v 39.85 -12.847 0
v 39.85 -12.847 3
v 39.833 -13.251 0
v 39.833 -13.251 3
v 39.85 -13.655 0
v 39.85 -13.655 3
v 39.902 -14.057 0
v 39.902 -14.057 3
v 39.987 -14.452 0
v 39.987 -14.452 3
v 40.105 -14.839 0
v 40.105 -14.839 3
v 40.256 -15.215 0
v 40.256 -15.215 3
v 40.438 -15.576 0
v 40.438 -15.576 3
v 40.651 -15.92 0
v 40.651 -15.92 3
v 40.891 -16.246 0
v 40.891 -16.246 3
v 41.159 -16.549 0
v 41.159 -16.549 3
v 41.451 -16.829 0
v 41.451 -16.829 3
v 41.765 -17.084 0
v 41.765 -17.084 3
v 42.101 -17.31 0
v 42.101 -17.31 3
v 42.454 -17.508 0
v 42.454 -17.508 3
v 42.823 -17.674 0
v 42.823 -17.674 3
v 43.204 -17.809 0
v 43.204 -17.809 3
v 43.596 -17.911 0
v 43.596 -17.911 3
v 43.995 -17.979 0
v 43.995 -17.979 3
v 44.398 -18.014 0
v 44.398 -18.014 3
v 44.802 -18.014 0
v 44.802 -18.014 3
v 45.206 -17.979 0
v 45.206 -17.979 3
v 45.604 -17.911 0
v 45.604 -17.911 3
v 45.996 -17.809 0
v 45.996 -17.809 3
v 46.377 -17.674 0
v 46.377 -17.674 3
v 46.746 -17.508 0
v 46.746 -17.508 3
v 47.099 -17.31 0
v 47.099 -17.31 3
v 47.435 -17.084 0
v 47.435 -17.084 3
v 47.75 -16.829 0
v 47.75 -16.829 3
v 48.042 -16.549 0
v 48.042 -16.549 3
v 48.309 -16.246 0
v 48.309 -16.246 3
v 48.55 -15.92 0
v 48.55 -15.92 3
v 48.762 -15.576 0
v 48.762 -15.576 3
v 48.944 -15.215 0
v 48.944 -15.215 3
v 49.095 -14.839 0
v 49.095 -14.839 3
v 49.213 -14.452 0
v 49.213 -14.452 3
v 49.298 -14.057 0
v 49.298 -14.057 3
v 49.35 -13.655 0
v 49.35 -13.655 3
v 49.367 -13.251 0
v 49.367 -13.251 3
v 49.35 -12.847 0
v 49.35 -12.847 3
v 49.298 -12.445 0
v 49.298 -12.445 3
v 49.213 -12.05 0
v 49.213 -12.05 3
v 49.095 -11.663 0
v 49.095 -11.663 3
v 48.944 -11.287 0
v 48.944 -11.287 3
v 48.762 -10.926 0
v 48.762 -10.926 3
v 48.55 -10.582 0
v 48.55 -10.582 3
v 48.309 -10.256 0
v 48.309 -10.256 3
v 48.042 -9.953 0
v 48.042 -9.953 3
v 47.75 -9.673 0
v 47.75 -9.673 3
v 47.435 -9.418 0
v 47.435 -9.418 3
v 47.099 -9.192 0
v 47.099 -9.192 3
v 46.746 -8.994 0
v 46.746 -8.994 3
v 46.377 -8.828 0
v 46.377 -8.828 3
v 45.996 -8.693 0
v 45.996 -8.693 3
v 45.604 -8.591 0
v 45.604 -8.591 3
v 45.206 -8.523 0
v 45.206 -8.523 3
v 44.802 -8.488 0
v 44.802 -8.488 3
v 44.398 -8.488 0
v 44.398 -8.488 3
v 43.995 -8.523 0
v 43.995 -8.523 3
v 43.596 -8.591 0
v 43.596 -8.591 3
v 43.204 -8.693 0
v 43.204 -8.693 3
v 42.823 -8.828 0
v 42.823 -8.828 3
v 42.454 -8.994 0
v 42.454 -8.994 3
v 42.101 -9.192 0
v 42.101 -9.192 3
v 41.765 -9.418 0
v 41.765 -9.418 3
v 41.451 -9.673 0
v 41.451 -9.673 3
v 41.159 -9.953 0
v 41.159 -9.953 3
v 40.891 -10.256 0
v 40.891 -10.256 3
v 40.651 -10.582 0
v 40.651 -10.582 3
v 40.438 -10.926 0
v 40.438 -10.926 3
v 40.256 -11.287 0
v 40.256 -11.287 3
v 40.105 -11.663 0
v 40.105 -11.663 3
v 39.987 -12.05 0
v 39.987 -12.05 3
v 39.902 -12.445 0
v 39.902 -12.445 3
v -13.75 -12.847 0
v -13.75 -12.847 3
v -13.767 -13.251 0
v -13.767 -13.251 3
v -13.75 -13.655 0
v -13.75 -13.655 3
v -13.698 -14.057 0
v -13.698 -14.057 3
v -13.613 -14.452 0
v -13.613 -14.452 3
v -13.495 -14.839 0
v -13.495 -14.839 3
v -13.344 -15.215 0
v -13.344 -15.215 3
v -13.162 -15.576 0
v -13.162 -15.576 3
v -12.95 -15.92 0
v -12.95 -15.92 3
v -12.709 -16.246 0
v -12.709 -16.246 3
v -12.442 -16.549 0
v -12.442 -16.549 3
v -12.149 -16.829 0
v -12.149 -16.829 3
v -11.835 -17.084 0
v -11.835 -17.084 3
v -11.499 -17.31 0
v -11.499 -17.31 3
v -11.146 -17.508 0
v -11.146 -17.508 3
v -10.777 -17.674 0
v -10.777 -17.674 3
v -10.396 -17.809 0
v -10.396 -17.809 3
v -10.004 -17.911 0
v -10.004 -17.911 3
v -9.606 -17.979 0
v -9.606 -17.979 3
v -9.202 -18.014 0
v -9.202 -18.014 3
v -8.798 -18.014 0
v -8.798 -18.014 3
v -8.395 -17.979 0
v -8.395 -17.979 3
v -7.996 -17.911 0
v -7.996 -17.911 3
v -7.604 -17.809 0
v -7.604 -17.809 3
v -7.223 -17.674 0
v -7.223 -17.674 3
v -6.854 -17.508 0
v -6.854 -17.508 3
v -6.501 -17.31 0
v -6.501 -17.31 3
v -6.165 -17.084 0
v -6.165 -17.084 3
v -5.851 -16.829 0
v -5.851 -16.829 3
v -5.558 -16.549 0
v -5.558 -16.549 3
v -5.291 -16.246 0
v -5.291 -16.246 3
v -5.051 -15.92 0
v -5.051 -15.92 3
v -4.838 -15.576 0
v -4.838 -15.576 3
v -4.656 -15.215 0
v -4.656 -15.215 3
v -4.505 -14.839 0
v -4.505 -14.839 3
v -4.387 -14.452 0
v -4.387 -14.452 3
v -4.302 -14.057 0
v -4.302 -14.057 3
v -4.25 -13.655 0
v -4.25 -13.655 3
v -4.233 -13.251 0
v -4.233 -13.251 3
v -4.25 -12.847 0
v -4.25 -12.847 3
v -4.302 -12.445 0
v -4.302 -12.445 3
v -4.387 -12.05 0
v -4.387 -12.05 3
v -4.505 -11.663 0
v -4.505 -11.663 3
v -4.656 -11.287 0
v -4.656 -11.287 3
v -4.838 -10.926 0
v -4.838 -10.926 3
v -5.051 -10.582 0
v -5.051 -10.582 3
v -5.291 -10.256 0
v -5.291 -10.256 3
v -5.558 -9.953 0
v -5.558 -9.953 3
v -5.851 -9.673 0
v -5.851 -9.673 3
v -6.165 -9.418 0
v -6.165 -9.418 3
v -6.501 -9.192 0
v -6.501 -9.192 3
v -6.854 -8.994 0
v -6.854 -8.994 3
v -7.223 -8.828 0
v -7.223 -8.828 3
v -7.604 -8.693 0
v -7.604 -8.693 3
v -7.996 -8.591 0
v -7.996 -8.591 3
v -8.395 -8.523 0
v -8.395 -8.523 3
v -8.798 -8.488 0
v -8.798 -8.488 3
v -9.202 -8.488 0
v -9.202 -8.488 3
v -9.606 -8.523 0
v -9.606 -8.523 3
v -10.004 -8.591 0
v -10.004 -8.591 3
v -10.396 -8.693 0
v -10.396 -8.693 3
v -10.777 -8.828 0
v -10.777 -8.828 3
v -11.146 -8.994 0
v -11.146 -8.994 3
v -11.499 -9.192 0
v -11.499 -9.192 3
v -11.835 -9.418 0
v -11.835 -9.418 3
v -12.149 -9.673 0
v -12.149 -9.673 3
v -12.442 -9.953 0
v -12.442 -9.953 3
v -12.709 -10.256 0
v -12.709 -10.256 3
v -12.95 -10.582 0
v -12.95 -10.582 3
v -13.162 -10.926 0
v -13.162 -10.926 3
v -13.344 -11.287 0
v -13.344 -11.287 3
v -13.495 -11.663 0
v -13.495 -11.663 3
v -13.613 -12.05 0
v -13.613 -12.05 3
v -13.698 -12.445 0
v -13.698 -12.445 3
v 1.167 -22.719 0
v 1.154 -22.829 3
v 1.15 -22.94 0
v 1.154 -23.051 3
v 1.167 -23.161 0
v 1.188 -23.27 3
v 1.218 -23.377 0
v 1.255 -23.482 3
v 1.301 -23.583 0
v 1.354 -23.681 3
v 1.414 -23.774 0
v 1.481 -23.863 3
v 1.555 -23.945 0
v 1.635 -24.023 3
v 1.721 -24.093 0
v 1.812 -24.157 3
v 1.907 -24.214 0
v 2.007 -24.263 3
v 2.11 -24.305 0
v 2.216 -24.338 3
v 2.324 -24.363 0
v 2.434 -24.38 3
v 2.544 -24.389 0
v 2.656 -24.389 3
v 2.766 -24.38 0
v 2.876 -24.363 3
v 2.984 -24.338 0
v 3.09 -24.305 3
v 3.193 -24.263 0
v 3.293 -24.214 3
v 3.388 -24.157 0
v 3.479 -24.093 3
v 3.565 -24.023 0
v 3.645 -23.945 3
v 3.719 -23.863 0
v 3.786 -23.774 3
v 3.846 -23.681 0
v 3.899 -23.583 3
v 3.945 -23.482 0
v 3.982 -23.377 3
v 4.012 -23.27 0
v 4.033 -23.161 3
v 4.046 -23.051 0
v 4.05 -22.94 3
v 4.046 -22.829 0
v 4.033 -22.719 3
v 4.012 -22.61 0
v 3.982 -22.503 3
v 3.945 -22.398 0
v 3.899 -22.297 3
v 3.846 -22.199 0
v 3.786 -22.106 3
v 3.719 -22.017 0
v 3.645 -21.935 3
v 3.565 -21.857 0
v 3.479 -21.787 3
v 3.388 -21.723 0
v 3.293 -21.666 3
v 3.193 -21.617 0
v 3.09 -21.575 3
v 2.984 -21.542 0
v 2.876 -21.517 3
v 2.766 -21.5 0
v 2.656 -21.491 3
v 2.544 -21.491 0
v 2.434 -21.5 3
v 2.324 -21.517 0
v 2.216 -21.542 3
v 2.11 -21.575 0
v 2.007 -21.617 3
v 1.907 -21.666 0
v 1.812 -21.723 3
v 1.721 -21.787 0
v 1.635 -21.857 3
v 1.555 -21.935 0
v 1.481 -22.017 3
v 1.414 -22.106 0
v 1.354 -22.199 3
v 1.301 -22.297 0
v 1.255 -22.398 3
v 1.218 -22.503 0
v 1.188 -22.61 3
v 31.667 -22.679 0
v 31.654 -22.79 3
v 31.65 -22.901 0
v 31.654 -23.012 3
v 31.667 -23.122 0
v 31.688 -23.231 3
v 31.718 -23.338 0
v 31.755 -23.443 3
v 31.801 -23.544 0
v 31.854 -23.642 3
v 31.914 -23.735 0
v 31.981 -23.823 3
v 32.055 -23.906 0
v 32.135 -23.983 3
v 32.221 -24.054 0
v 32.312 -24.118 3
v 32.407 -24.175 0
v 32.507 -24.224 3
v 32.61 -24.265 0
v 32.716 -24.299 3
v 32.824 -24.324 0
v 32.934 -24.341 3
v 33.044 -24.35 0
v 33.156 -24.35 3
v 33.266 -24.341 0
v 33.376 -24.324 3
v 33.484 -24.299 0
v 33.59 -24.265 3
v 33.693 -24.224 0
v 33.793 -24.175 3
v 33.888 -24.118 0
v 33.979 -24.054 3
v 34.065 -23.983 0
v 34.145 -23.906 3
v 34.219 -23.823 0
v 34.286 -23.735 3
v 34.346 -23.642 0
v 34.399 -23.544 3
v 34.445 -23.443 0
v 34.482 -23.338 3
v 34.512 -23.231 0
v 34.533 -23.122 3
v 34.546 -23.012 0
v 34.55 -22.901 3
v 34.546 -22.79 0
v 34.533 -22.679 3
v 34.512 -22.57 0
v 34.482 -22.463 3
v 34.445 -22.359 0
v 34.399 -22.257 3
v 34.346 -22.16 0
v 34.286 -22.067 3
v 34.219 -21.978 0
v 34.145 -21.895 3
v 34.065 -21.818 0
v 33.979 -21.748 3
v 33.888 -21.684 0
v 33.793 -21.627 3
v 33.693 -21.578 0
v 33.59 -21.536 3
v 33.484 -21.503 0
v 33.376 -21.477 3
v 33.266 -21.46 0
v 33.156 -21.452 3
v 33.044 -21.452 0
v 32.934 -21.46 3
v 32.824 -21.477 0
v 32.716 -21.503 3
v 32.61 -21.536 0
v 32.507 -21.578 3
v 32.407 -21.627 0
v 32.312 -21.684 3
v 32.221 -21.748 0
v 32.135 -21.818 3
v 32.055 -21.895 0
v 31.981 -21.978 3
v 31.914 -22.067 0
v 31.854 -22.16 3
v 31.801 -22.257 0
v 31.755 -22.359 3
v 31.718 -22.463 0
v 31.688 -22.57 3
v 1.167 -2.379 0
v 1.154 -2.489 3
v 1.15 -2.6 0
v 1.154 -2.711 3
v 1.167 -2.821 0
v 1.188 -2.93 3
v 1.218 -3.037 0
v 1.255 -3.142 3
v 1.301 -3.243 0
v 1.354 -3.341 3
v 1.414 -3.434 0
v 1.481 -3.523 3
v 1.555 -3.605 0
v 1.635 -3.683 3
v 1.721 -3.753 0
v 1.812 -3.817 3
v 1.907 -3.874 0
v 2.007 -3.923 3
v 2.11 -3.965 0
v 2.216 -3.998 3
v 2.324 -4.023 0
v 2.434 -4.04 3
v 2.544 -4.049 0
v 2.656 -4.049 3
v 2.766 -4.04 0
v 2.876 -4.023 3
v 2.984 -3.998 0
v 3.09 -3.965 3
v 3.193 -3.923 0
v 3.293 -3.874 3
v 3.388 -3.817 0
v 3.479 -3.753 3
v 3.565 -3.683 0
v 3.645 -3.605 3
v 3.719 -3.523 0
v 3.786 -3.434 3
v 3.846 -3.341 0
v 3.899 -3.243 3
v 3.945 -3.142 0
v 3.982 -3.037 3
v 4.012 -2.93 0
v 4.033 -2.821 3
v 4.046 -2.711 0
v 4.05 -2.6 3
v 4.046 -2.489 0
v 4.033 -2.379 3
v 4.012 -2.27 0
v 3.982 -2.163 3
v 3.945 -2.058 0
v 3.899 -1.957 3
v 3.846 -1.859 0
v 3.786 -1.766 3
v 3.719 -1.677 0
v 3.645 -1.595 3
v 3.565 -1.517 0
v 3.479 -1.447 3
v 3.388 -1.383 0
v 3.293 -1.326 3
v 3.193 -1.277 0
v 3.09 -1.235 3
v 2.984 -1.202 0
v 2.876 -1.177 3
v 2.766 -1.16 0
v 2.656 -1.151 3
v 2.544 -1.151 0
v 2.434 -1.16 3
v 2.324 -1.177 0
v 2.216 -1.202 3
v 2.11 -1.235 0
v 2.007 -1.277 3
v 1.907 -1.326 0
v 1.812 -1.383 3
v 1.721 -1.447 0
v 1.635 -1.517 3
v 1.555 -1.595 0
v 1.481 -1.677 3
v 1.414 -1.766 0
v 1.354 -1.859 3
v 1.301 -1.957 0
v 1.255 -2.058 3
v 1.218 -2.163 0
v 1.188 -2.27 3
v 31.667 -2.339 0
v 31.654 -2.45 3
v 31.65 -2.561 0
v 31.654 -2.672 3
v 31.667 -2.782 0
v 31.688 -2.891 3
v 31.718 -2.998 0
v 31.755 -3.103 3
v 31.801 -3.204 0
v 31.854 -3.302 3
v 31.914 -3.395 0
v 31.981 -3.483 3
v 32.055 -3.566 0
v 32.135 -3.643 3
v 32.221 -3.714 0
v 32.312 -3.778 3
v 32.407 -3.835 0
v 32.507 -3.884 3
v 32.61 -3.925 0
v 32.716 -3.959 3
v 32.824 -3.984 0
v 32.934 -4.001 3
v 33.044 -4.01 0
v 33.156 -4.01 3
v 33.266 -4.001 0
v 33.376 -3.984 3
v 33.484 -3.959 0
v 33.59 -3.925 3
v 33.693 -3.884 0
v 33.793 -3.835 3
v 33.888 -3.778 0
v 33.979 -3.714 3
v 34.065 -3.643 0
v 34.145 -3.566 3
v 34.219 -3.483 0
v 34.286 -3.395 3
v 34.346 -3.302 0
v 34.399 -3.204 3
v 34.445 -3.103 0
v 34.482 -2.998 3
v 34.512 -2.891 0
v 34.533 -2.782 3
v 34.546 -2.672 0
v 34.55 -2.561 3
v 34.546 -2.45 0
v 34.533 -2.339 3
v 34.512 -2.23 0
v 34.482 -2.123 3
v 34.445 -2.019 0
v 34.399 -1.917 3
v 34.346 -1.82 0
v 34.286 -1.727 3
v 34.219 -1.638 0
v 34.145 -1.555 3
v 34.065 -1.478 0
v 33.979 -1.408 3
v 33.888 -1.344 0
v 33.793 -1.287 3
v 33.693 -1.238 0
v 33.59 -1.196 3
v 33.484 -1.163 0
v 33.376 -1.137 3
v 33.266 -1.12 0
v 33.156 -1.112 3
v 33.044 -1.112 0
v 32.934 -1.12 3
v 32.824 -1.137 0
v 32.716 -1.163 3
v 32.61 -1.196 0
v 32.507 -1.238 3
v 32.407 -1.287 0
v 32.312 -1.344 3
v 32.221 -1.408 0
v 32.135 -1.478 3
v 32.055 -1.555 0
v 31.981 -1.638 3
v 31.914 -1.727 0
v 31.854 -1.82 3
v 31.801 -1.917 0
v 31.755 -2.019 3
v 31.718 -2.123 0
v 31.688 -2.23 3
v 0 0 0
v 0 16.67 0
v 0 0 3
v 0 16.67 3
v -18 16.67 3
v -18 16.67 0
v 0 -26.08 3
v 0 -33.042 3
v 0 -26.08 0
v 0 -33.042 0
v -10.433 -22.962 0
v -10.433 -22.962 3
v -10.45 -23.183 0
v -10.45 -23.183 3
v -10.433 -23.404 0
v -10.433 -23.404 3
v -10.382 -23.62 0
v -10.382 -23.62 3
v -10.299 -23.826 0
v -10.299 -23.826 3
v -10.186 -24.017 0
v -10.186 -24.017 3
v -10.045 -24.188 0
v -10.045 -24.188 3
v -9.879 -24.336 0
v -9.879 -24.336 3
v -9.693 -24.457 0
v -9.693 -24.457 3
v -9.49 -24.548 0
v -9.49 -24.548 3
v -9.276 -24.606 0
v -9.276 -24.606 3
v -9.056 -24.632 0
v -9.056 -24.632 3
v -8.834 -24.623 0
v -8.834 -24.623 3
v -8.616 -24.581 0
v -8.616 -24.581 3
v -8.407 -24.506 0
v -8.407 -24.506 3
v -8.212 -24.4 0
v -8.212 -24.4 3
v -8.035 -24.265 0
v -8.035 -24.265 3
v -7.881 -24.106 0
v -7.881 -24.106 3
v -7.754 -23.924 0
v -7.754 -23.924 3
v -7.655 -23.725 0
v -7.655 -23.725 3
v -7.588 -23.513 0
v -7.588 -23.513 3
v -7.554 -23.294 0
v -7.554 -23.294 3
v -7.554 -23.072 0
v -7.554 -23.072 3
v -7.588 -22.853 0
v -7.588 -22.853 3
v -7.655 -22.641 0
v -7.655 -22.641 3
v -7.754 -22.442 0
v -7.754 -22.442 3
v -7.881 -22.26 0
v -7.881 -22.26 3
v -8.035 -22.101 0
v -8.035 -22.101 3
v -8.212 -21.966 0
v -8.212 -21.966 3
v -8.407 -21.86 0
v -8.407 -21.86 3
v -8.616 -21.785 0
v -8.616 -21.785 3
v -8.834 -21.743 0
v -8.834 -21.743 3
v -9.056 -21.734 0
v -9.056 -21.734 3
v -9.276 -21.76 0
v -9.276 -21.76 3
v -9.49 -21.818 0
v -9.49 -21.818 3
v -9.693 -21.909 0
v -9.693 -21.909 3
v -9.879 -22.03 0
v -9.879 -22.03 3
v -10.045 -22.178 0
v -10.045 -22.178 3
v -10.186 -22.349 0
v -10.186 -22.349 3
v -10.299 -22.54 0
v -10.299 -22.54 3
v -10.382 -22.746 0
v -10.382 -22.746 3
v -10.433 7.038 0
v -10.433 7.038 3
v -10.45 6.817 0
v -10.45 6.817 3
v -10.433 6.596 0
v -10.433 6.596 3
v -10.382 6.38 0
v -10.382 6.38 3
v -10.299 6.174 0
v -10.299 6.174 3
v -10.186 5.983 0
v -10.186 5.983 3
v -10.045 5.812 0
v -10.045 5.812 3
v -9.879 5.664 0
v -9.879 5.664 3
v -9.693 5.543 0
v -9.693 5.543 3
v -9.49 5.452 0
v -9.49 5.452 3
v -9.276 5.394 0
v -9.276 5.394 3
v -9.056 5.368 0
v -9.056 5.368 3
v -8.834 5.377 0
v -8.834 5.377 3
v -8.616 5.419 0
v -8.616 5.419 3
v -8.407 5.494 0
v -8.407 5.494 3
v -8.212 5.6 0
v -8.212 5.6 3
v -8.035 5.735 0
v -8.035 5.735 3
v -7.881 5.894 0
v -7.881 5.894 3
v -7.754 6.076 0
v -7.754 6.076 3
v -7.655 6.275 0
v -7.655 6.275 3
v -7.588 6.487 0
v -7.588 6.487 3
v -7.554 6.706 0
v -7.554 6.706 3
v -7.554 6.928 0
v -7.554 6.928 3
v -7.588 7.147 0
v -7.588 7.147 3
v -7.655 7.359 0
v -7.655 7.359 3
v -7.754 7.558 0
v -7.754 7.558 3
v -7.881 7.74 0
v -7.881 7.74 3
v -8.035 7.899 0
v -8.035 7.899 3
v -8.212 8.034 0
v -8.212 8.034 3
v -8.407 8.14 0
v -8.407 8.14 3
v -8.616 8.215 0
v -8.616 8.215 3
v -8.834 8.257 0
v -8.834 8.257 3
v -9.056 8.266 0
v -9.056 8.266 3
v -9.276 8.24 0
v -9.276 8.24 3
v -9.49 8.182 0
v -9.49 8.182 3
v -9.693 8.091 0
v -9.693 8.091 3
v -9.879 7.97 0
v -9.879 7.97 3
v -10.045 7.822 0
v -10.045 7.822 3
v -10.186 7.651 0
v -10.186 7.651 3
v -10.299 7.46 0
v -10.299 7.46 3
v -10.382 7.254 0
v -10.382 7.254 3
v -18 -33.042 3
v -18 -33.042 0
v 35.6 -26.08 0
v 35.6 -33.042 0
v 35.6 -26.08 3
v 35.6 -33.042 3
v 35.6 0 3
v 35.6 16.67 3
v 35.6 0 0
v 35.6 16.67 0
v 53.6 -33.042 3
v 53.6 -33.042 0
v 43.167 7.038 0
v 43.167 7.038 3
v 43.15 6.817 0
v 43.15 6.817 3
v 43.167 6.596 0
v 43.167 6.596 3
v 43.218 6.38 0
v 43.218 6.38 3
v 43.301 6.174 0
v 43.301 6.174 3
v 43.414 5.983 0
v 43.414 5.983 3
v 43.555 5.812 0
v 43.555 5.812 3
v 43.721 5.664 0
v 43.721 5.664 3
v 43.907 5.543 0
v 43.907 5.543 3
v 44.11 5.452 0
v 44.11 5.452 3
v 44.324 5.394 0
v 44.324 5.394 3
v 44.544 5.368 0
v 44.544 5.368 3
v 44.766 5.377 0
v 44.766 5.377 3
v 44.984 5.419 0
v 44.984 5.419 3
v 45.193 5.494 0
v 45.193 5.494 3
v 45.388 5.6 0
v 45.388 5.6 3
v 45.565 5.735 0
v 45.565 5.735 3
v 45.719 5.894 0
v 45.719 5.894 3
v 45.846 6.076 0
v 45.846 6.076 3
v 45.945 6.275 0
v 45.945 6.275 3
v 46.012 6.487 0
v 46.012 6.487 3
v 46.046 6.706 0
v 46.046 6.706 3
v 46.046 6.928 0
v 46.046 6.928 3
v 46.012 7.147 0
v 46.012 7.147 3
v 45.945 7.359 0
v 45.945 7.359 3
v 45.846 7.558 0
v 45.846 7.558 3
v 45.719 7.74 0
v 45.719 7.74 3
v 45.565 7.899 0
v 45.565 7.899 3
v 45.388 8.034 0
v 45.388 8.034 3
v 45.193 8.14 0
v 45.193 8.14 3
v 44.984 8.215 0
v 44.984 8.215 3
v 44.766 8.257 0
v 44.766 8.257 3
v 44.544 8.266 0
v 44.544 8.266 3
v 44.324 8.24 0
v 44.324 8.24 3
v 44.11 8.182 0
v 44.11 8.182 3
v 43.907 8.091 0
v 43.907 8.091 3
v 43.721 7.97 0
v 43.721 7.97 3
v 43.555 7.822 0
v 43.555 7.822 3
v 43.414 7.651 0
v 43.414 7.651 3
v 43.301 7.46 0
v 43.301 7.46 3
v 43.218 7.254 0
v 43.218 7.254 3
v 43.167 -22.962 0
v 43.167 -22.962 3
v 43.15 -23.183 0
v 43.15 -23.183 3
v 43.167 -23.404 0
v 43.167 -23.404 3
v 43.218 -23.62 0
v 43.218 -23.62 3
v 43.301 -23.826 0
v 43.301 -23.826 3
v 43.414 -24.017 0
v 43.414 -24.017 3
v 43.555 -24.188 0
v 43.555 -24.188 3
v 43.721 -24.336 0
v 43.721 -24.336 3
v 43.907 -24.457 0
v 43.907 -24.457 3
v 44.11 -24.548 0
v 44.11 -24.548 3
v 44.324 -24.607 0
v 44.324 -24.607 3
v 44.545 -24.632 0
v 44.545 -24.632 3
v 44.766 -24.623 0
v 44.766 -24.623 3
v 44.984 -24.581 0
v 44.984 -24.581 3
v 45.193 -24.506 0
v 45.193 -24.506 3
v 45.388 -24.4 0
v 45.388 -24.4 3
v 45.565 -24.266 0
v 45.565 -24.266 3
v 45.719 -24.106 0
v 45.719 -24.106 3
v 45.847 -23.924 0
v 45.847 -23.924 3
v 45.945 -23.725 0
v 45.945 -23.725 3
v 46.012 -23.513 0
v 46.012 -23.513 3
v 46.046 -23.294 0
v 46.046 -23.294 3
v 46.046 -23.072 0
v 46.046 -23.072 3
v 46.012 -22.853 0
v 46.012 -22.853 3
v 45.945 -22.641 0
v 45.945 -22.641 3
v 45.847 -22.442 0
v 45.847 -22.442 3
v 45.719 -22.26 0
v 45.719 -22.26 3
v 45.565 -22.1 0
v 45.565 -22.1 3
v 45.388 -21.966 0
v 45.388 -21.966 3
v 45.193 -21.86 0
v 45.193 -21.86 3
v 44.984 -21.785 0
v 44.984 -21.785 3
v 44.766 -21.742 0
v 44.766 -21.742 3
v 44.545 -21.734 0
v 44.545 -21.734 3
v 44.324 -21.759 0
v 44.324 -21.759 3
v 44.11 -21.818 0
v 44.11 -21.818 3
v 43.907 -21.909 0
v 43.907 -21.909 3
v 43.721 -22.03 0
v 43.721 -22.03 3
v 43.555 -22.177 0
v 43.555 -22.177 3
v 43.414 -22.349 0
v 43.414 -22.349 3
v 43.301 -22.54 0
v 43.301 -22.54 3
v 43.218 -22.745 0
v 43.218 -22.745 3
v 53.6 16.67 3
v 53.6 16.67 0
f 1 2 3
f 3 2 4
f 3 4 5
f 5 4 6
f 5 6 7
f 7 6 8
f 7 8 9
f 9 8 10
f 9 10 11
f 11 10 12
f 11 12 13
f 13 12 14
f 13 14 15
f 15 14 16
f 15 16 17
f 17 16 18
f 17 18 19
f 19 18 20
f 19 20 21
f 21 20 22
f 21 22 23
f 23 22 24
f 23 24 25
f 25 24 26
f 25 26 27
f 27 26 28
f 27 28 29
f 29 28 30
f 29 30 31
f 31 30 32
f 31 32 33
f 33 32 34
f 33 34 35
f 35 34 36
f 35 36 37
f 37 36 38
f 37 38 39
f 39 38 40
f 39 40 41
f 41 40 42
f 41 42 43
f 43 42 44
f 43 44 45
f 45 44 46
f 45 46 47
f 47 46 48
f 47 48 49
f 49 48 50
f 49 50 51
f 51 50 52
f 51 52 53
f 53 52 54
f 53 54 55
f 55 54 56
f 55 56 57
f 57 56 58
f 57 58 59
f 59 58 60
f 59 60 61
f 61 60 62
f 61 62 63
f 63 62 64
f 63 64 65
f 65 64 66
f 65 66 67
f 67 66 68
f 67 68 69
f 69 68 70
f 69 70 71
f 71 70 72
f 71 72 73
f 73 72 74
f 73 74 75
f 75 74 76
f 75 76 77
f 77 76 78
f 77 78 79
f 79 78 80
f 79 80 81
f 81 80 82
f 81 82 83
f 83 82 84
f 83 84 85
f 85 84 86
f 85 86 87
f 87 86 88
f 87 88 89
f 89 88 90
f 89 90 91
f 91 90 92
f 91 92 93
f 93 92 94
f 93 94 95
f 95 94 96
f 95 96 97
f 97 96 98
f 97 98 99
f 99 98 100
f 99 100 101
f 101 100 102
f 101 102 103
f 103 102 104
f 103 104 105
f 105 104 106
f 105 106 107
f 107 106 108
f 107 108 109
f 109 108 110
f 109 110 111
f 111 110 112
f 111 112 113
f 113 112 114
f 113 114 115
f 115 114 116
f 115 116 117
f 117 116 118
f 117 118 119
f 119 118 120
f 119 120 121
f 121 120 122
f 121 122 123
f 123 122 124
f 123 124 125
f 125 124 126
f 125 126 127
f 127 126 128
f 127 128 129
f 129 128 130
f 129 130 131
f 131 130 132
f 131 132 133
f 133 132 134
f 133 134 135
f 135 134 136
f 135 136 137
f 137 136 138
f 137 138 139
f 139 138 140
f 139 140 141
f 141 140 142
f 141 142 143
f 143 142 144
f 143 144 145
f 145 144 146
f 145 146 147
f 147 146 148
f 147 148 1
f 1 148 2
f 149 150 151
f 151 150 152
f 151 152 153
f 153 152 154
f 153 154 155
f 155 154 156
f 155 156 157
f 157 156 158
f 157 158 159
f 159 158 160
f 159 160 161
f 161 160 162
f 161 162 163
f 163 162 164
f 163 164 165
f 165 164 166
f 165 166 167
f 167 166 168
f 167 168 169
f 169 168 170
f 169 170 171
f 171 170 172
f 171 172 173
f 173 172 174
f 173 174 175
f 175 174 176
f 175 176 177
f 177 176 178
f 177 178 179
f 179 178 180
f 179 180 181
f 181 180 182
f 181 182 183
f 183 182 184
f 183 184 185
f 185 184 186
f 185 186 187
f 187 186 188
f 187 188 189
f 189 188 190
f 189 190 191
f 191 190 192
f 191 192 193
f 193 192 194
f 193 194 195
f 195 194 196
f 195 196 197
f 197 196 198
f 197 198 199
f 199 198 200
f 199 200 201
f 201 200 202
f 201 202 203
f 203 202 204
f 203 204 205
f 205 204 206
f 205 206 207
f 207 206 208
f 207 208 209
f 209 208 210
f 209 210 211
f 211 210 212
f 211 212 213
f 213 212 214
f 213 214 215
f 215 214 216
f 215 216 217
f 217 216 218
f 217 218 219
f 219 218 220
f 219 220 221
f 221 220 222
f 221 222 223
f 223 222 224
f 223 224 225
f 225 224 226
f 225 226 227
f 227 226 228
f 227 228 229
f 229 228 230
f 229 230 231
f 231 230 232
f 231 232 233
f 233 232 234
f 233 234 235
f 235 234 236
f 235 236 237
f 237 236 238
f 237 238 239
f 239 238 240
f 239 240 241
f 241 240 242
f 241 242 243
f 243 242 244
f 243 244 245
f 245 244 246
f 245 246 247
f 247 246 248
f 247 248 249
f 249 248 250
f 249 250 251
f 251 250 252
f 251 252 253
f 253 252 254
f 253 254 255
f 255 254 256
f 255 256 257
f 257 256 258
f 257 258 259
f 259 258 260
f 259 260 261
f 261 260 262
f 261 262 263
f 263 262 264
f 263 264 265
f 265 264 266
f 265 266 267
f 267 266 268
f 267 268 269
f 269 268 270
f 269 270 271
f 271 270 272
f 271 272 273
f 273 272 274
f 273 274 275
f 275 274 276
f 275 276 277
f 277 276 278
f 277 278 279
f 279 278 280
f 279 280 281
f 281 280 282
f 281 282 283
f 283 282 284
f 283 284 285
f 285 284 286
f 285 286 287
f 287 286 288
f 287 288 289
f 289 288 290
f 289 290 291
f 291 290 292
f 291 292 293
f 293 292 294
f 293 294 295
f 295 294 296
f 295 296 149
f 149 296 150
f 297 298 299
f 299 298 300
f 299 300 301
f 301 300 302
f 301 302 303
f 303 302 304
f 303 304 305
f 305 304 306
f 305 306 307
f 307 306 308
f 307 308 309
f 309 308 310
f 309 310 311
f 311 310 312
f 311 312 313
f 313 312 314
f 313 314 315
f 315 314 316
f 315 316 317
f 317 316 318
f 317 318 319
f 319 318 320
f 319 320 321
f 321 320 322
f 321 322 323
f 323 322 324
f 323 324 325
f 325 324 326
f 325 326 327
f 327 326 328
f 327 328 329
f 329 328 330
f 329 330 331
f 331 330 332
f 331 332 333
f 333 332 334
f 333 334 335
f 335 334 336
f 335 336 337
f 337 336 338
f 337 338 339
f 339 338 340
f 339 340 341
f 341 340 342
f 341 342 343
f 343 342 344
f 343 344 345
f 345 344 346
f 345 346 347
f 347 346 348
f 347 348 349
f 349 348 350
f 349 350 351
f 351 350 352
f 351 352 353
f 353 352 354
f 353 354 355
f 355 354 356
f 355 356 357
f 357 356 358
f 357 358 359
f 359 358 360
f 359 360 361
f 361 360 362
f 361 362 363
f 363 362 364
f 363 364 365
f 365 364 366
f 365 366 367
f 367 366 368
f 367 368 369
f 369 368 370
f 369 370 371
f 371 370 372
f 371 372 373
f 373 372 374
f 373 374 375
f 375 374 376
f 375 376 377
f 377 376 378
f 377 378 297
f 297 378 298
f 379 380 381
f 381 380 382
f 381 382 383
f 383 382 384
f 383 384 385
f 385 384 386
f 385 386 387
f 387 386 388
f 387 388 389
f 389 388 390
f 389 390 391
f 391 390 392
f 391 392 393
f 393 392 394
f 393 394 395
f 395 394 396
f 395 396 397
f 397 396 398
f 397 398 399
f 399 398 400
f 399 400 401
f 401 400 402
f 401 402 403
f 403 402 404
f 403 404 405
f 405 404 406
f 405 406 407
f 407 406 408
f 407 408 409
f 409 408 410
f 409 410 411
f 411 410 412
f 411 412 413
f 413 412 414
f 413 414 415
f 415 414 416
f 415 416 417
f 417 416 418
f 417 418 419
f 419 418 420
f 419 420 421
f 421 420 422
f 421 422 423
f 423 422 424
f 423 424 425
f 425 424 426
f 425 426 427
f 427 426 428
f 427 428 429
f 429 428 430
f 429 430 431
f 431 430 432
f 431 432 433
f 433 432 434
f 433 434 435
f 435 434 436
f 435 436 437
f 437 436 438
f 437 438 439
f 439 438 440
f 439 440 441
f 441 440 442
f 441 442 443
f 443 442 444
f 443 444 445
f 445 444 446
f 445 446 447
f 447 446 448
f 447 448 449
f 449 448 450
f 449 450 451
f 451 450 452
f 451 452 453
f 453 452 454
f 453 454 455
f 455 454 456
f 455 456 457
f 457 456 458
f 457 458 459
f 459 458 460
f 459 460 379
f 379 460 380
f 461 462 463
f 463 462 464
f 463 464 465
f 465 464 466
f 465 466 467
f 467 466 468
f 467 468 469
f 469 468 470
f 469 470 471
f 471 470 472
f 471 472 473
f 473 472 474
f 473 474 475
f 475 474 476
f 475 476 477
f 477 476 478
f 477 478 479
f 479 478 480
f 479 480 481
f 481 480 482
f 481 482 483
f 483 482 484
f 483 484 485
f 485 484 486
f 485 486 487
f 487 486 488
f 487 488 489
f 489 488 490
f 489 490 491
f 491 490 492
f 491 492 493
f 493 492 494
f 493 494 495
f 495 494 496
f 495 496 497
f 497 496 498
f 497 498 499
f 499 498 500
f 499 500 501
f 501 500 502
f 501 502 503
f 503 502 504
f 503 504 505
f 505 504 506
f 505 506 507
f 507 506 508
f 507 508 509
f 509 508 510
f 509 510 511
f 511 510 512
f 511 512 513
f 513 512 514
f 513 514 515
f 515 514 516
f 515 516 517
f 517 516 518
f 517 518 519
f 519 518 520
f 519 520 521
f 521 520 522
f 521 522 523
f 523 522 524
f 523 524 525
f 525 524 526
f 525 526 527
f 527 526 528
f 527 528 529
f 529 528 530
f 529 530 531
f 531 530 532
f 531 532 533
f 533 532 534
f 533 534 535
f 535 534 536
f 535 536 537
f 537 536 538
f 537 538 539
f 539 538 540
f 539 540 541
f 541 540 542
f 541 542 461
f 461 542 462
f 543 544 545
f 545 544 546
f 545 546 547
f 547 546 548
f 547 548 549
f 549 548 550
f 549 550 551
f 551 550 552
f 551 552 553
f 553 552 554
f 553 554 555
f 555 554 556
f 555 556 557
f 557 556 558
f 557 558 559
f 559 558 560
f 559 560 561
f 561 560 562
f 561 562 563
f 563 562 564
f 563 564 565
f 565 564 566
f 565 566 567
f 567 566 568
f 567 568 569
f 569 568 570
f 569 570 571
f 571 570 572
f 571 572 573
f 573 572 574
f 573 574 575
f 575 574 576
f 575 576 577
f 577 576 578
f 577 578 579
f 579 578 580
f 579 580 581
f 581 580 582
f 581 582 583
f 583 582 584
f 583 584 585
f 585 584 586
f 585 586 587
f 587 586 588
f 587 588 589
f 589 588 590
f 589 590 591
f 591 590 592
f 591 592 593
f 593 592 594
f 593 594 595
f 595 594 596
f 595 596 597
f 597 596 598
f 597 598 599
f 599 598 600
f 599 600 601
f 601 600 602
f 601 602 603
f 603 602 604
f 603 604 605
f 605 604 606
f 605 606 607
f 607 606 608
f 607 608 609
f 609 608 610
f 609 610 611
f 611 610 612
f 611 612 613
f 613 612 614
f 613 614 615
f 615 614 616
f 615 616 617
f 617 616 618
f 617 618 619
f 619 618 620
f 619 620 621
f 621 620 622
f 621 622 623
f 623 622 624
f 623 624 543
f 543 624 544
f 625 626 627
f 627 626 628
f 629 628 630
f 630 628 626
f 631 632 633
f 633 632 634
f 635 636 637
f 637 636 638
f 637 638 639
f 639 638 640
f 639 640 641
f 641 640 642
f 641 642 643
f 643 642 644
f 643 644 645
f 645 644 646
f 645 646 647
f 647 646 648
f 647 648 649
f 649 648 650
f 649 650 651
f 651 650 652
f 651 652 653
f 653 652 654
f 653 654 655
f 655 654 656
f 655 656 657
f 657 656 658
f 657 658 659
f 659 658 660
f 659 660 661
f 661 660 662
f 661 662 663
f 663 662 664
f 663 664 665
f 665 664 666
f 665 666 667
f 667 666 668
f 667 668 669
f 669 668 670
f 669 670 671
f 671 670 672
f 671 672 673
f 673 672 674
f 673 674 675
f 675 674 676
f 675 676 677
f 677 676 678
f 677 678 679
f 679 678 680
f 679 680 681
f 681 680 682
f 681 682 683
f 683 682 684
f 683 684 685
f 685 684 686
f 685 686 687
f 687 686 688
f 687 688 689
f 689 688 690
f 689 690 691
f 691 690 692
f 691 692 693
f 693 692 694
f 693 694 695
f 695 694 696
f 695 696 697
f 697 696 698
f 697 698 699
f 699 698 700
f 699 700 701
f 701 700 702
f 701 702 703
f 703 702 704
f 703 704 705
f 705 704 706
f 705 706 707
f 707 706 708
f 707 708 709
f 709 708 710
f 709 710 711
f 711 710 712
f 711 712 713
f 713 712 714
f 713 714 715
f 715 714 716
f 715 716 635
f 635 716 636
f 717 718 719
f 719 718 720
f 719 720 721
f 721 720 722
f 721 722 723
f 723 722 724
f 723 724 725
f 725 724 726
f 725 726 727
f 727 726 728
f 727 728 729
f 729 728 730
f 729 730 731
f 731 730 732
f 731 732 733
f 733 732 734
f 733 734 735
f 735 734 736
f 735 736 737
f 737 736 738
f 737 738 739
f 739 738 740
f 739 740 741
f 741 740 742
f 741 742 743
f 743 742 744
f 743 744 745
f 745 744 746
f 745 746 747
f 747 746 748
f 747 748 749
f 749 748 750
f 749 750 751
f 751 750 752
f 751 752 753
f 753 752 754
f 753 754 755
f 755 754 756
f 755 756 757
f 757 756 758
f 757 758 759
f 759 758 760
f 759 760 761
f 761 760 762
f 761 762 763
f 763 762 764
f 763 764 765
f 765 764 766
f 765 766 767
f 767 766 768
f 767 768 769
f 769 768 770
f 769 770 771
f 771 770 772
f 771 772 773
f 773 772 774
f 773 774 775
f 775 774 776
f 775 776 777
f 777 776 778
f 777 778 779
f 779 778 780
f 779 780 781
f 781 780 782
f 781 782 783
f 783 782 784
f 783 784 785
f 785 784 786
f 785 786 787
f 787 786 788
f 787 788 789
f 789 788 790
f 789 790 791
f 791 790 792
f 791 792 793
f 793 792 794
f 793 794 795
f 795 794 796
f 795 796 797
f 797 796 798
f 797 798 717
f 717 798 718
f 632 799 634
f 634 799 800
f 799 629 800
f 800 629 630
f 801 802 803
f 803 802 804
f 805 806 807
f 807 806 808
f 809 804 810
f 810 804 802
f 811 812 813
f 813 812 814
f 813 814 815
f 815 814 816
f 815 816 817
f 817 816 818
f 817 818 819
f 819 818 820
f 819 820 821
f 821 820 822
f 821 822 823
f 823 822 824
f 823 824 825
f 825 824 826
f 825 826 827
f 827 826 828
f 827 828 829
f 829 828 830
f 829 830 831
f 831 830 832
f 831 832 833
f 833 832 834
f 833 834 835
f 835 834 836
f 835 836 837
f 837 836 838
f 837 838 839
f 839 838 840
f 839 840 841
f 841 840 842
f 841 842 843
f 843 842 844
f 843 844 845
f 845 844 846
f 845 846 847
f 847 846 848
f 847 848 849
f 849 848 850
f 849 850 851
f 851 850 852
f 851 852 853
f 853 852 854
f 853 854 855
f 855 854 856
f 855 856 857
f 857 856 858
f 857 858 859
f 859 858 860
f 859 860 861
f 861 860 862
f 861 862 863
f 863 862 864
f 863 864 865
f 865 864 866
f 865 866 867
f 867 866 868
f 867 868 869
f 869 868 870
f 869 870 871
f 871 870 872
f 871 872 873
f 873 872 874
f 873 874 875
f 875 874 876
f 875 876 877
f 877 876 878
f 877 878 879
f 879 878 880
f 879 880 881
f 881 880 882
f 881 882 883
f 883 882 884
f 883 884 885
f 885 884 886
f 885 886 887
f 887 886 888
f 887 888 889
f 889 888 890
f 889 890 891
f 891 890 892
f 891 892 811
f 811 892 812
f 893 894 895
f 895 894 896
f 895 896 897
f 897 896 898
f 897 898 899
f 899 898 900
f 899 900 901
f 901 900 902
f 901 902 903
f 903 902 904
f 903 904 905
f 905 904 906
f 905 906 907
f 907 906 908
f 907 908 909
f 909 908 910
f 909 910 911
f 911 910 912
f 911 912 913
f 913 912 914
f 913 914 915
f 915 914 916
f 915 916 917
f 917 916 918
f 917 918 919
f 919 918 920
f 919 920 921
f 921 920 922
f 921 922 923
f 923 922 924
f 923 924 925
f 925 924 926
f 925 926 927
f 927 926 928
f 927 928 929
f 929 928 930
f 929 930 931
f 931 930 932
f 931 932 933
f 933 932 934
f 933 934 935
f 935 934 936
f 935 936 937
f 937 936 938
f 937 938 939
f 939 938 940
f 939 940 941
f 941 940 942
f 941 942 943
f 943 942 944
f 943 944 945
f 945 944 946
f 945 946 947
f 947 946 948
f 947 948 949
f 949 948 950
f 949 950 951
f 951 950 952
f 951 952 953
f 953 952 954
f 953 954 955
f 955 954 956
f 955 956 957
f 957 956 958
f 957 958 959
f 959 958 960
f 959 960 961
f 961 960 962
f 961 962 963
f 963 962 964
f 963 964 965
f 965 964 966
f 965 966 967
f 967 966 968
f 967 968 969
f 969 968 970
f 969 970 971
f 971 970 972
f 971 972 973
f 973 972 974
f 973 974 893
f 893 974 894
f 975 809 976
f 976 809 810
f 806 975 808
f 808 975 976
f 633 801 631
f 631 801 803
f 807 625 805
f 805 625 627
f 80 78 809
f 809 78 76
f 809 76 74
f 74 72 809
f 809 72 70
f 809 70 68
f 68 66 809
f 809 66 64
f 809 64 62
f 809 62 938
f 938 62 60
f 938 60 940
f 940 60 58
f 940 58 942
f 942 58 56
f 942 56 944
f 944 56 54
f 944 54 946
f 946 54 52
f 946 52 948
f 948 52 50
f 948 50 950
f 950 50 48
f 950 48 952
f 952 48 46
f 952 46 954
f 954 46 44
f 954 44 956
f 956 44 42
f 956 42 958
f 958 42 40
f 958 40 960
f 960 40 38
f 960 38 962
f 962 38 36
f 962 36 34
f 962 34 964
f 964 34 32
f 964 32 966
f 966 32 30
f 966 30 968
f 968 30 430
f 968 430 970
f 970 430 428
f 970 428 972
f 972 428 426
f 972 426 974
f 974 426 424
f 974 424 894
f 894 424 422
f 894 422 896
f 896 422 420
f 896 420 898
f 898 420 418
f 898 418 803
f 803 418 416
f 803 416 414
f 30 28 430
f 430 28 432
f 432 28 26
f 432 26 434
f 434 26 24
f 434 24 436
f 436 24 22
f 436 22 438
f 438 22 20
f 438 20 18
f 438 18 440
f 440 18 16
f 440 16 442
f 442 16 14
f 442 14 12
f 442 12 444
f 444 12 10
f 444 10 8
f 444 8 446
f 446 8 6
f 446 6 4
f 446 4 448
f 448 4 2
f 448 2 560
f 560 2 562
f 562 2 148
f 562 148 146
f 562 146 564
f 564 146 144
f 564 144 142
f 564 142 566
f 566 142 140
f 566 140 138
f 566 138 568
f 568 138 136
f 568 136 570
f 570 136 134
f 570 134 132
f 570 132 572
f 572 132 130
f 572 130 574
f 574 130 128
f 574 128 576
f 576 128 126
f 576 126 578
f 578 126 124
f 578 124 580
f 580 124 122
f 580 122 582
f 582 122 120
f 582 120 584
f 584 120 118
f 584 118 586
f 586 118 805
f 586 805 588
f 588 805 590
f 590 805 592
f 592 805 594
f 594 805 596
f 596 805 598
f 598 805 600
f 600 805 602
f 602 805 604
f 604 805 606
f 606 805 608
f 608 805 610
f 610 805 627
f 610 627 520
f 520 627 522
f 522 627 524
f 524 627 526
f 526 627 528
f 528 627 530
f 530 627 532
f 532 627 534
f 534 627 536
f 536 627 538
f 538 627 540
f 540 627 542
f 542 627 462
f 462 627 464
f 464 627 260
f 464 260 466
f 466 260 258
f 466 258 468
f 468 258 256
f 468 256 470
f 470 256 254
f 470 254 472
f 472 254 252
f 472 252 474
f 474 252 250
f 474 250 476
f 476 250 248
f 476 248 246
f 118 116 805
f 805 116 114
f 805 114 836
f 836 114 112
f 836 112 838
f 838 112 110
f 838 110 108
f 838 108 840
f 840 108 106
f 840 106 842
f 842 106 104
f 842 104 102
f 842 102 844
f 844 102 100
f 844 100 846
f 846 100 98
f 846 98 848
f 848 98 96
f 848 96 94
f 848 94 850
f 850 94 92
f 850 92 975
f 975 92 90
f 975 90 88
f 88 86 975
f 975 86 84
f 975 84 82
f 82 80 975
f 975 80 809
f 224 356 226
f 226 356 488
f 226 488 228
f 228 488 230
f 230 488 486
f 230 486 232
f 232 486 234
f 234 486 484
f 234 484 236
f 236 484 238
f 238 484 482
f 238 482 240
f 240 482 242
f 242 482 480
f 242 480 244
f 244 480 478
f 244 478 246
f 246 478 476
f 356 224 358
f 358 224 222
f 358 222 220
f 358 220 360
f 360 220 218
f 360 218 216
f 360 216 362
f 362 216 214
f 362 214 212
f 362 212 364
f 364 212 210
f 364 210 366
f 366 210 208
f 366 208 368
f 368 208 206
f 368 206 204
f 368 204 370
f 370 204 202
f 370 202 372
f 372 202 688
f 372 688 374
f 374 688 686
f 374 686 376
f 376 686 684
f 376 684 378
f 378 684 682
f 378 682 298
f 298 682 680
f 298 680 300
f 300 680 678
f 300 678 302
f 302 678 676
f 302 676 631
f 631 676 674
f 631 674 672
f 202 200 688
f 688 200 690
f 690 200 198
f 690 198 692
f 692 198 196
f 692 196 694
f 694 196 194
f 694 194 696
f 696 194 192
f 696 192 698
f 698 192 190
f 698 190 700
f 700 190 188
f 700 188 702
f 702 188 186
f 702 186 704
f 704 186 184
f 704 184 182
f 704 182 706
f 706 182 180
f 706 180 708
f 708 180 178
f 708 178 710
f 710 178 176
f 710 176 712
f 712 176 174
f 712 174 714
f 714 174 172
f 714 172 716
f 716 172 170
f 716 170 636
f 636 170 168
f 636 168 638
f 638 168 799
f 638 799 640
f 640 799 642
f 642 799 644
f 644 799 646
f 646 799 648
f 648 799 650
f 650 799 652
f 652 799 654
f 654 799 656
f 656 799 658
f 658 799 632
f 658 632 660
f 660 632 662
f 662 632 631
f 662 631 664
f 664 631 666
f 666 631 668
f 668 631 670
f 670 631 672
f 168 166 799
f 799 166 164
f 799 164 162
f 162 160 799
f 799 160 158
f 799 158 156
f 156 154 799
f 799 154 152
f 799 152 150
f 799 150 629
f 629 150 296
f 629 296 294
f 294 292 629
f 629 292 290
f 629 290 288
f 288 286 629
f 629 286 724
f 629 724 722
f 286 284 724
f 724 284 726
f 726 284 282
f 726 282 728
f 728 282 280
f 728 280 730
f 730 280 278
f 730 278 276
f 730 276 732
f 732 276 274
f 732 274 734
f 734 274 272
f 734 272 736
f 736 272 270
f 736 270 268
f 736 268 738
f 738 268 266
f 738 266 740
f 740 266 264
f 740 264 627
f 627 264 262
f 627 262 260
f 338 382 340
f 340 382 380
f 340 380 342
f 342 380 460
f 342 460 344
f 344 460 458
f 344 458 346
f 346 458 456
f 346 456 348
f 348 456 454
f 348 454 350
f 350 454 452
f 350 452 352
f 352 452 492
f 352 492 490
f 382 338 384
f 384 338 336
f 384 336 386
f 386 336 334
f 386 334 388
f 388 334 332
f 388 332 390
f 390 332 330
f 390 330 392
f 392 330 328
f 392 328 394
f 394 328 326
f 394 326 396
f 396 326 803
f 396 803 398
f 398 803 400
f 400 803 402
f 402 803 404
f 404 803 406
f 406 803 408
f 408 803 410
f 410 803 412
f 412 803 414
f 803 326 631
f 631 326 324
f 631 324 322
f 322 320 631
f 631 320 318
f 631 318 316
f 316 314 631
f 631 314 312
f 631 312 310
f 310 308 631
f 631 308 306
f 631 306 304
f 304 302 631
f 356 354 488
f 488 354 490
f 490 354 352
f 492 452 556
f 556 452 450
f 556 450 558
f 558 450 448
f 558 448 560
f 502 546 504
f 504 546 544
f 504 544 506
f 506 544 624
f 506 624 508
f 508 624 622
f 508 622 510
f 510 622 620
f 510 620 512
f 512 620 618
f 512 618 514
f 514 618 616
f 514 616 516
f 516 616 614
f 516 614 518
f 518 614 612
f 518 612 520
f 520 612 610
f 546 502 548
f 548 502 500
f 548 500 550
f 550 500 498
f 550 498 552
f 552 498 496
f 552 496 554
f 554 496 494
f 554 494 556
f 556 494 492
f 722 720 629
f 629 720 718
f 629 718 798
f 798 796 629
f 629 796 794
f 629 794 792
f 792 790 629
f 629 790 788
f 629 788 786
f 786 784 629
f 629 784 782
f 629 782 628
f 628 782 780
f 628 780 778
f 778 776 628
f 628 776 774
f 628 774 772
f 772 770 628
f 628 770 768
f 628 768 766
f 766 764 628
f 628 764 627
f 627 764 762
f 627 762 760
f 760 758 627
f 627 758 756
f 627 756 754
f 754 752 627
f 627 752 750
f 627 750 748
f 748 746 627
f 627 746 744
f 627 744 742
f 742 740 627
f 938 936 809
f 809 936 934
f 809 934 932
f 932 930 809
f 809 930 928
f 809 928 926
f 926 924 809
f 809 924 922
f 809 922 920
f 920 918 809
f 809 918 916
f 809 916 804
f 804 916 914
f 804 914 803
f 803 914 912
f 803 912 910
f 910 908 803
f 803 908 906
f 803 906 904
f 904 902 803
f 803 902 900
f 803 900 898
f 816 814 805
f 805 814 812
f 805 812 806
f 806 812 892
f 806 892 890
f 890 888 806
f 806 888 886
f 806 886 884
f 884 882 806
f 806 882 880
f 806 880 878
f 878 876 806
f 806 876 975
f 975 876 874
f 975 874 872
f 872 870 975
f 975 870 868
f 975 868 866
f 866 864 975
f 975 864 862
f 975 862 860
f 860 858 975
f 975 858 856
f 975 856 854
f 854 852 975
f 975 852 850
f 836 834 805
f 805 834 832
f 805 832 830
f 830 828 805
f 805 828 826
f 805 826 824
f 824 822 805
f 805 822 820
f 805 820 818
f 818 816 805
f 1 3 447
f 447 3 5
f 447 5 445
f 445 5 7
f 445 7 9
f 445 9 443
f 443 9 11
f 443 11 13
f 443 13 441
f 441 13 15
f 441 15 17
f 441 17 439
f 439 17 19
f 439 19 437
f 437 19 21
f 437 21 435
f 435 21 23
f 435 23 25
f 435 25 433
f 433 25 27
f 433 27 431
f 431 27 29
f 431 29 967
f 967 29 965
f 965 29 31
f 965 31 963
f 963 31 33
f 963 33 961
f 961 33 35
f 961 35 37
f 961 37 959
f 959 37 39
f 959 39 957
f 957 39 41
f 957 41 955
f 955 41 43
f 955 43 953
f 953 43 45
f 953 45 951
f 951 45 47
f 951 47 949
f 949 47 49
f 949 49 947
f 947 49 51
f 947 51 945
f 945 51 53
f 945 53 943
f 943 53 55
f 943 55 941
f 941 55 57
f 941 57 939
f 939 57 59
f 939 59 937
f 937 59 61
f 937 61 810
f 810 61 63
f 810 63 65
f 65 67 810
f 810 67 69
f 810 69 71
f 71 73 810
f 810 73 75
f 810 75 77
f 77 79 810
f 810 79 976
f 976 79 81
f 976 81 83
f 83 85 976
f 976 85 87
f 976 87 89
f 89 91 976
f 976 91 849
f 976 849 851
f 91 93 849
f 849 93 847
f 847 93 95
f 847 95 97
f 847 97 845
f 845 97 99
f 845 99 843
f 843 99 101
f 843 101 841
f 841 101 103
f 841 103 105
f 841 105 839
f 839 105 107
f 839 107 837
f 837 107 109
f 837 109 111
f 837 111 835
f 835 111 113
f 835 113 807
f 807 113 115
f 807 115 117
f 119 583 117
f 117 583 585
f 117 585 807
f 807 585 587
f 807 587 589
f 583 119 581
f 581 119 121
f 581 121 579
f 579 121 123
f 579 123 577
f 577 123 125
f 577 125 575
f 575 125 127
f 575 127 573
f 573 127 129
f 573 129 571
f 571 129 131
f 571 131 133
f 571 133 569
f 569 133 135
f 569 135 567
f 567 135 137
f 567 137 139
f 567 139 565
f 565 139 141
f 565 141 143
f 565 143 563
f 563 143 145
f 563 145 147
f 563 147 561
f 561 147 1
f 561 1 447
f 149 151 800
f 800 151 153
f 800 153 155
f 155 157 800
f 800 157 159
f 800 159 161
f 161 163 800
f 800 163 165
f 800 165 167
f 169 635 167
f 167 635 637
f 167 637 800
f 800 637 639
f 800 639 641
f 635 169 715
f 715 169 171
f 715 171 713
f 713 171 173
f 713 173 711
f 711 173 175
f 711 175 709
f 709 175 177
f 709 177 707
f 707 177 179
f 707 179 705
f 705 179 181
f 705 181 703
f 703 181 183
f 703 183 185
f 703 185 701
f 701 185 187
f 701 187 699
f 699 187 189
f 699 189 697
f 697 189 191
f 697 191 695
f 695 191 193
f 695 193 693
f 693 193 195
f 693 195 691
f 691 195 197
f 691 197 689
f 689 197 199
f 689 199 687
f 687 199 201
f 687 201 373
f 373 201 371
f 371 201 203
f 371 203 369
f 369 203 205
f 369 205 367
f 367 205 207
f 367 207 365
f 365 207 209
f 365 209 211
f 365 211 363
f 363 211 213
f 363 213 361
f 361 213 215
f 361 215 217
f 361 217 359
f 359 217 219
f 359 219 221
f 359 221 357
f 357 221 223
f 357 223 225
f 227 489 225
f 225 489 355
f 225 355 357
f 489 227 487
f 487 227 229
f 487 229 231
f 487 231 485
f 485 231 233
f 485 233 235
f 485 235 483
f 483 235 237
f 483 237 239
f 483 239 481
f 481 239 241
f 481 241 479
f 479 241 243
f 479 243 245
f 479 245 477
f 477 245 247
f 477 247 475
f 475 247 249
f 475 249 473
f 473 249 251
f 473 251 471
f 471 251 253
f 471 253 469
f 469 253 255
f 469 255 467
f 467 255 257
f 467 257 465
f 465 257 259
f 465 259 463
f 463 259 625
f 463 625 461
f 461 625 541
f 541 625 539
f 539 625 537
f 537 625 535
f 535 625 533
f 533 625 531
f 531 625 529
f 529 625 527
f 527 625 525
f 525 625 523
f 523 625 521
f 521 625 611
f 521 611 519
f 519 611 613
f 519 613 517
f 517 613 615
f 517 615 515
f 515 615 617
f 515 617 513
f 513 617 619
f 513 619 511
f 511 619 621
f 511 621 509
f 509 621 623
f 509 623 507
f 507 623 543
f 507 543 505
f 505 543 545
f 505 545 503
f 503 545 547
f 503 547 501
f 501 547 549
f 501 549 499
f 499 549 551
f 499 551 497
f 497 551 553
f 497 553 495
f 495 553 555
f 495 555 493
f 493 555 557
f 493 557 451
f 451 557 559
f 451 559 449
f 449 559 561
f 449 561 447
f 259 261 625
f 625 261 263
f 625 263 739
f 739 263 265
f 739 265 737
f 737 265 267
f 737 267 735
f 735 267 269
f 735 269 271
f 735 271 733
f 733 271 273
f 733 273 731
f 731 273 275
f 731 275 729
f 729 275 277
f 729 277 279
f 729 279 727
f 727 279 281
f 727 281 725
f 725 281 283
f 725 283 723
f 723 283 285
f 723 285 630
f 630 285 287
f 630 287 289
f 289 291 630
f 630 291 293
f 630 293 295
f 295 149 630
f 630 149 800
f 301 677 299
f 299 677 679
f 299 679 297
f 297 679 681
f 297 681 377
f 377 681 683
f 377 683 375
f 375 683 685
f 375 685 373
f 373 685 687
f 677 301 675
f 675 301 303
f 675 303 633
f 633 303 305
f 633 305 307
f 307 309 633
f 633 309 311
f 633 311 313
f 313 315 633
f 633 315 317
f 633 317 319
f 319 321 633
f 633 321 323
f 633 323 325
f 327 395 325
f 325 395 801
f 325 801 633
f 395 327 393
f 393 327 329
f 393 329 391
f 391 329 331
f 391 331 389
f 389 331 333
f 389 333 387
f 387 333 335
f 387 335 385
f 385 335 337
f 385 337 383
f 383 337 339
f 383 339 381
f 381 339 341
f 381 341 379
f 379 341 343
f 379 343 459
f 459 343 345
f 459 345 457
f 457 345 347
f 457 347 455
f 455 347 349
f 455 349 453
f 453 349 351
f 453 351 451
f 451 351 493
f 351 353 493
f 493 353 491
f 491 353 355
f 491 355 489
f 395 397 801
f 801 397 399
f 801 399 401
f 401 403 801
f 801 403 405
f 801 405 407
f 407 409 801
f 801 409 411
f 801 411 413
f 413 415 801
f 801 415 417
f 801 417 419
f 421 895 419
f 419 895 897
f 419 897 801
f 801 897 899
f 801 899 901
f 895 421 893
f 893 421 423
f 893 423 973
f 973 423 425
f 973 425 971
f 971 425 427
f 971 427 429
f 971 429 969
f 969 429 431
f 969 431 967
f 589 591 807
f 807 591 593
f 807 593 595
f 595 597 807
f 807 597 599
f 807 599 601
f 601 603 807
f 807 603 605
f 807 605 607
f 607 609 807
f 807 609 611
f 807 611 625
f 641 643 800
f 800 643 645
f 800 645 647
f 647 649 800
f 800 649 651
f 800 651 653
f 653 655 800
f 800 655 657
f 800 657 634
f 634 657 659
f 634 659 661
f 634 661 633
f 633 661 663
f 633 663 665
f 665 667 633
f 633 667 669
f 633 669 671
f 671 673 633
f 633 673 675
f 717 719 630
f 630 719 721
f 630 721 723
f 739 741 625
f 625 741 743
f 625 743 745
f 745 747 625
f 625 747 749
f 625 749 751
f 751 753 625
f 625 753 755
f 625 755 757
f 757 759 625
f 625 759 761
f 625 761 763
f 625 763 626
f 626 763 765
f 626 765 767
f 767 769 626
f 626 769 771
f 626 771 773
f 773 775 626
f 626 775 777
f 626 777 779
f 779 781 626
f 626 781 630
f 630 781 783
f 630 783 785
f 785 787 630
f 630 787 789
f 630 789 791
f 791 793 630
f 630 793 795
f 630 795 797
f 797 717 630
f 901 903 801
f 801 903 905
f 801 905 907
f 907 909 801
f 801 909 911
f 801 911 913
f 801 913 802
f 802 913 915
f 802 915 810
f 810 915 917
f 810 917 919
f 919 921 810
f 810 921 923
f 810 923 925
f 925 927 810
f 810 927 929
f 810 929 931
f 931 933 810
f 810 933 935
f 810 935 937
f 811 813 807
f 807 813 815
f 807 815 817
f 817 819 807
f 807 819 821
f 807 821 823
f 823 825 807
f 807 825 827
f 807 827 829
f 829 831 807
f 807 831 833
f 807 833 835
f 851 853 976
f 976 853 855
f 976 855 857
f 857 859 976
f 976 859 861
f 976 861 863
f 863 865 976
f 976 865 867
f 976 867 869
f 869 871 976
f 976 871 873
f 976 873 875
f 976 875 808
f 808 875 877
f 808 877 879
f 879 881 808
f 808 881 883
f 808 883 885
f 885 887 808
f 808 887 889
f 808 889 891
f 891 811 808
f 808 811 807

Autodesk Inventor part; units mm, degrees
ref_plane "YZ Plane" through (0, 0, 0) normal (1, 0, 0) x (0, 1, 0)
ref_plane "Work Plane1" through (0, 0, 0) normal (0, 0, 1) x (1, 0, 0)
sketch "Sketch1" plane through (0, 0, 0) normal (0, 0, 1) x (1, 0, 0)
  line L0 (0, -26.08) -> (0, 0) projected
  line L1 (35.6, -26.08) -> (0, -26.08) projected
  line L2 (35.6, 0) -> (35.6, -26.08) projected
  line L3 (0, 0) -> (35.6, 0) projected
  point P0 (33.1, -3.1792)
  point P1 (33.1, -23.5192)
  point P2 (2.6, -23.48)
  point P3 (2.6, -3.14)
extrude "Extrusion1" add sketch "Sketch1" along normal blind 3
sketch "Sketch2" plane through (0, 0, 0) normal (0, 0, -1) x (-1, 0, 0)
  line L0 (-49.6, 16.67) -> (-39.6, 16.67) projected
  line L1 (-39.6, 16.67) -> (-35.6, 16.67) projected
  line L2 (-49.6, 16.67) -> (-53.6, 16.67) projected
  line L3 (-50.6, -33.042) -> (-53.6, -33.042) projected
  line L4 (-38.6, -33.042) -> (-35.6, -33.042) projected
  line L5 (4, 16.67) -> (0, 16.67) projected
  line L6 (4, 16.67) -> (14, 16.67) projected
  line L7 (14, 16.67) -> (18, 16.67) projected
  line L8 (15, -33.042) -> (18, -33.042) projected
  line L9 (3, -33.042) -> (0, -33.042) projected
  line L10 (0, 16.67) -> (0, -33.042) projected
  line L11 (-35.6, -33.042) -> (-35.6, 16.67) projected
  circle A0 centre (-44.6, 6.817) radius 1.45 projected
  circle A1 centre (-44.6001, -23.183) radius 1.4501 projected
  circle A2 centre (9, -23.183) radius 1.45 projected
  circle A3 centre (9, 6.817) radius 1.45 projected
  line L12 (-53.6, 16.67) -> (-53.6, -33.042) projected
  line L13 (-35.6, -26.08) -> (-35.6, 0) projected
  line L14 (-35.6, 0) -> (-35.6, -26.08)
  line L15 (-38.6, -33.042) -> (-50.6, -33.042)
  line L16 (3, -33.042) -> (15, -33.042)
  line L17 (18, -33.042) -> (18, 16.67)
  point P0 (0, 0)
ref_plane "Work Plane2" through (0, -26.08, 3) normal (0, 0, -1) x (0, 1, 0)
extrude "Extrusion2" add sketch "Sketch2" against normal up to surface (3 mm away)
sketch "Sketch3" plane through (0, 0, 3) normal (0, 0, 1) x (1, 0, 0)
  circle A0 centre (2.6, -22.94) radius 1.6 projected
  circle A1 centre (33.1, -22.9008) radius 1.6 projected
  circle A2 centre (33.1, -2.5608) radius 1.6 projected
  circle A3 centre (2.6, -2.6) radius 1.6 projected
  circle A4 centre (2.6, -2.6) radius 1.45
  circle A5 centre (2.6, -22.94) radius 1.45
  circle A6 centre (33.1, -22.9008) radius 1.45
  circle A7 centre (33.1, -2.5608) radius 1.45
  point P0 (0, 0)
  dimension "d8" = 2.9
  dimension "d9" = 2.9
  dimension "d10" = 2.9
  dimension "d11" = 2.9
extrude "Extrusion3" cut sketch "Sketch3" against normal through all contours A4 | A5 | A6 | A7
sketch "Sketch4" plane through (0, 0, 3) normal (0, 0, 1) x (1, 0, 0)
  circle A0 centre (-9, -23.183) radius 1.45 projected
  line L0 (-9, -23.183) -> (-9, -13.251)
  circle A1 centre (-9, -13.251) radius 4.767
  circle A2 centre (44.6001, -23.183) radius 1.4501 projected
  line L1 (44.6001, -23.183) -> (44.6001, -13.251)
  circle A3 centre (44.6001, -13.251) radius 4.767
  point P0 (0, 0)
  dimension "d14" = 9.932
  dimension "d15" = 9.534
  dimension "d16" = 9.534
extrude "Extrusion4" cut sketch "Sketch4" against normal through all contours A1 | A3
properties part number "gps_plate"
